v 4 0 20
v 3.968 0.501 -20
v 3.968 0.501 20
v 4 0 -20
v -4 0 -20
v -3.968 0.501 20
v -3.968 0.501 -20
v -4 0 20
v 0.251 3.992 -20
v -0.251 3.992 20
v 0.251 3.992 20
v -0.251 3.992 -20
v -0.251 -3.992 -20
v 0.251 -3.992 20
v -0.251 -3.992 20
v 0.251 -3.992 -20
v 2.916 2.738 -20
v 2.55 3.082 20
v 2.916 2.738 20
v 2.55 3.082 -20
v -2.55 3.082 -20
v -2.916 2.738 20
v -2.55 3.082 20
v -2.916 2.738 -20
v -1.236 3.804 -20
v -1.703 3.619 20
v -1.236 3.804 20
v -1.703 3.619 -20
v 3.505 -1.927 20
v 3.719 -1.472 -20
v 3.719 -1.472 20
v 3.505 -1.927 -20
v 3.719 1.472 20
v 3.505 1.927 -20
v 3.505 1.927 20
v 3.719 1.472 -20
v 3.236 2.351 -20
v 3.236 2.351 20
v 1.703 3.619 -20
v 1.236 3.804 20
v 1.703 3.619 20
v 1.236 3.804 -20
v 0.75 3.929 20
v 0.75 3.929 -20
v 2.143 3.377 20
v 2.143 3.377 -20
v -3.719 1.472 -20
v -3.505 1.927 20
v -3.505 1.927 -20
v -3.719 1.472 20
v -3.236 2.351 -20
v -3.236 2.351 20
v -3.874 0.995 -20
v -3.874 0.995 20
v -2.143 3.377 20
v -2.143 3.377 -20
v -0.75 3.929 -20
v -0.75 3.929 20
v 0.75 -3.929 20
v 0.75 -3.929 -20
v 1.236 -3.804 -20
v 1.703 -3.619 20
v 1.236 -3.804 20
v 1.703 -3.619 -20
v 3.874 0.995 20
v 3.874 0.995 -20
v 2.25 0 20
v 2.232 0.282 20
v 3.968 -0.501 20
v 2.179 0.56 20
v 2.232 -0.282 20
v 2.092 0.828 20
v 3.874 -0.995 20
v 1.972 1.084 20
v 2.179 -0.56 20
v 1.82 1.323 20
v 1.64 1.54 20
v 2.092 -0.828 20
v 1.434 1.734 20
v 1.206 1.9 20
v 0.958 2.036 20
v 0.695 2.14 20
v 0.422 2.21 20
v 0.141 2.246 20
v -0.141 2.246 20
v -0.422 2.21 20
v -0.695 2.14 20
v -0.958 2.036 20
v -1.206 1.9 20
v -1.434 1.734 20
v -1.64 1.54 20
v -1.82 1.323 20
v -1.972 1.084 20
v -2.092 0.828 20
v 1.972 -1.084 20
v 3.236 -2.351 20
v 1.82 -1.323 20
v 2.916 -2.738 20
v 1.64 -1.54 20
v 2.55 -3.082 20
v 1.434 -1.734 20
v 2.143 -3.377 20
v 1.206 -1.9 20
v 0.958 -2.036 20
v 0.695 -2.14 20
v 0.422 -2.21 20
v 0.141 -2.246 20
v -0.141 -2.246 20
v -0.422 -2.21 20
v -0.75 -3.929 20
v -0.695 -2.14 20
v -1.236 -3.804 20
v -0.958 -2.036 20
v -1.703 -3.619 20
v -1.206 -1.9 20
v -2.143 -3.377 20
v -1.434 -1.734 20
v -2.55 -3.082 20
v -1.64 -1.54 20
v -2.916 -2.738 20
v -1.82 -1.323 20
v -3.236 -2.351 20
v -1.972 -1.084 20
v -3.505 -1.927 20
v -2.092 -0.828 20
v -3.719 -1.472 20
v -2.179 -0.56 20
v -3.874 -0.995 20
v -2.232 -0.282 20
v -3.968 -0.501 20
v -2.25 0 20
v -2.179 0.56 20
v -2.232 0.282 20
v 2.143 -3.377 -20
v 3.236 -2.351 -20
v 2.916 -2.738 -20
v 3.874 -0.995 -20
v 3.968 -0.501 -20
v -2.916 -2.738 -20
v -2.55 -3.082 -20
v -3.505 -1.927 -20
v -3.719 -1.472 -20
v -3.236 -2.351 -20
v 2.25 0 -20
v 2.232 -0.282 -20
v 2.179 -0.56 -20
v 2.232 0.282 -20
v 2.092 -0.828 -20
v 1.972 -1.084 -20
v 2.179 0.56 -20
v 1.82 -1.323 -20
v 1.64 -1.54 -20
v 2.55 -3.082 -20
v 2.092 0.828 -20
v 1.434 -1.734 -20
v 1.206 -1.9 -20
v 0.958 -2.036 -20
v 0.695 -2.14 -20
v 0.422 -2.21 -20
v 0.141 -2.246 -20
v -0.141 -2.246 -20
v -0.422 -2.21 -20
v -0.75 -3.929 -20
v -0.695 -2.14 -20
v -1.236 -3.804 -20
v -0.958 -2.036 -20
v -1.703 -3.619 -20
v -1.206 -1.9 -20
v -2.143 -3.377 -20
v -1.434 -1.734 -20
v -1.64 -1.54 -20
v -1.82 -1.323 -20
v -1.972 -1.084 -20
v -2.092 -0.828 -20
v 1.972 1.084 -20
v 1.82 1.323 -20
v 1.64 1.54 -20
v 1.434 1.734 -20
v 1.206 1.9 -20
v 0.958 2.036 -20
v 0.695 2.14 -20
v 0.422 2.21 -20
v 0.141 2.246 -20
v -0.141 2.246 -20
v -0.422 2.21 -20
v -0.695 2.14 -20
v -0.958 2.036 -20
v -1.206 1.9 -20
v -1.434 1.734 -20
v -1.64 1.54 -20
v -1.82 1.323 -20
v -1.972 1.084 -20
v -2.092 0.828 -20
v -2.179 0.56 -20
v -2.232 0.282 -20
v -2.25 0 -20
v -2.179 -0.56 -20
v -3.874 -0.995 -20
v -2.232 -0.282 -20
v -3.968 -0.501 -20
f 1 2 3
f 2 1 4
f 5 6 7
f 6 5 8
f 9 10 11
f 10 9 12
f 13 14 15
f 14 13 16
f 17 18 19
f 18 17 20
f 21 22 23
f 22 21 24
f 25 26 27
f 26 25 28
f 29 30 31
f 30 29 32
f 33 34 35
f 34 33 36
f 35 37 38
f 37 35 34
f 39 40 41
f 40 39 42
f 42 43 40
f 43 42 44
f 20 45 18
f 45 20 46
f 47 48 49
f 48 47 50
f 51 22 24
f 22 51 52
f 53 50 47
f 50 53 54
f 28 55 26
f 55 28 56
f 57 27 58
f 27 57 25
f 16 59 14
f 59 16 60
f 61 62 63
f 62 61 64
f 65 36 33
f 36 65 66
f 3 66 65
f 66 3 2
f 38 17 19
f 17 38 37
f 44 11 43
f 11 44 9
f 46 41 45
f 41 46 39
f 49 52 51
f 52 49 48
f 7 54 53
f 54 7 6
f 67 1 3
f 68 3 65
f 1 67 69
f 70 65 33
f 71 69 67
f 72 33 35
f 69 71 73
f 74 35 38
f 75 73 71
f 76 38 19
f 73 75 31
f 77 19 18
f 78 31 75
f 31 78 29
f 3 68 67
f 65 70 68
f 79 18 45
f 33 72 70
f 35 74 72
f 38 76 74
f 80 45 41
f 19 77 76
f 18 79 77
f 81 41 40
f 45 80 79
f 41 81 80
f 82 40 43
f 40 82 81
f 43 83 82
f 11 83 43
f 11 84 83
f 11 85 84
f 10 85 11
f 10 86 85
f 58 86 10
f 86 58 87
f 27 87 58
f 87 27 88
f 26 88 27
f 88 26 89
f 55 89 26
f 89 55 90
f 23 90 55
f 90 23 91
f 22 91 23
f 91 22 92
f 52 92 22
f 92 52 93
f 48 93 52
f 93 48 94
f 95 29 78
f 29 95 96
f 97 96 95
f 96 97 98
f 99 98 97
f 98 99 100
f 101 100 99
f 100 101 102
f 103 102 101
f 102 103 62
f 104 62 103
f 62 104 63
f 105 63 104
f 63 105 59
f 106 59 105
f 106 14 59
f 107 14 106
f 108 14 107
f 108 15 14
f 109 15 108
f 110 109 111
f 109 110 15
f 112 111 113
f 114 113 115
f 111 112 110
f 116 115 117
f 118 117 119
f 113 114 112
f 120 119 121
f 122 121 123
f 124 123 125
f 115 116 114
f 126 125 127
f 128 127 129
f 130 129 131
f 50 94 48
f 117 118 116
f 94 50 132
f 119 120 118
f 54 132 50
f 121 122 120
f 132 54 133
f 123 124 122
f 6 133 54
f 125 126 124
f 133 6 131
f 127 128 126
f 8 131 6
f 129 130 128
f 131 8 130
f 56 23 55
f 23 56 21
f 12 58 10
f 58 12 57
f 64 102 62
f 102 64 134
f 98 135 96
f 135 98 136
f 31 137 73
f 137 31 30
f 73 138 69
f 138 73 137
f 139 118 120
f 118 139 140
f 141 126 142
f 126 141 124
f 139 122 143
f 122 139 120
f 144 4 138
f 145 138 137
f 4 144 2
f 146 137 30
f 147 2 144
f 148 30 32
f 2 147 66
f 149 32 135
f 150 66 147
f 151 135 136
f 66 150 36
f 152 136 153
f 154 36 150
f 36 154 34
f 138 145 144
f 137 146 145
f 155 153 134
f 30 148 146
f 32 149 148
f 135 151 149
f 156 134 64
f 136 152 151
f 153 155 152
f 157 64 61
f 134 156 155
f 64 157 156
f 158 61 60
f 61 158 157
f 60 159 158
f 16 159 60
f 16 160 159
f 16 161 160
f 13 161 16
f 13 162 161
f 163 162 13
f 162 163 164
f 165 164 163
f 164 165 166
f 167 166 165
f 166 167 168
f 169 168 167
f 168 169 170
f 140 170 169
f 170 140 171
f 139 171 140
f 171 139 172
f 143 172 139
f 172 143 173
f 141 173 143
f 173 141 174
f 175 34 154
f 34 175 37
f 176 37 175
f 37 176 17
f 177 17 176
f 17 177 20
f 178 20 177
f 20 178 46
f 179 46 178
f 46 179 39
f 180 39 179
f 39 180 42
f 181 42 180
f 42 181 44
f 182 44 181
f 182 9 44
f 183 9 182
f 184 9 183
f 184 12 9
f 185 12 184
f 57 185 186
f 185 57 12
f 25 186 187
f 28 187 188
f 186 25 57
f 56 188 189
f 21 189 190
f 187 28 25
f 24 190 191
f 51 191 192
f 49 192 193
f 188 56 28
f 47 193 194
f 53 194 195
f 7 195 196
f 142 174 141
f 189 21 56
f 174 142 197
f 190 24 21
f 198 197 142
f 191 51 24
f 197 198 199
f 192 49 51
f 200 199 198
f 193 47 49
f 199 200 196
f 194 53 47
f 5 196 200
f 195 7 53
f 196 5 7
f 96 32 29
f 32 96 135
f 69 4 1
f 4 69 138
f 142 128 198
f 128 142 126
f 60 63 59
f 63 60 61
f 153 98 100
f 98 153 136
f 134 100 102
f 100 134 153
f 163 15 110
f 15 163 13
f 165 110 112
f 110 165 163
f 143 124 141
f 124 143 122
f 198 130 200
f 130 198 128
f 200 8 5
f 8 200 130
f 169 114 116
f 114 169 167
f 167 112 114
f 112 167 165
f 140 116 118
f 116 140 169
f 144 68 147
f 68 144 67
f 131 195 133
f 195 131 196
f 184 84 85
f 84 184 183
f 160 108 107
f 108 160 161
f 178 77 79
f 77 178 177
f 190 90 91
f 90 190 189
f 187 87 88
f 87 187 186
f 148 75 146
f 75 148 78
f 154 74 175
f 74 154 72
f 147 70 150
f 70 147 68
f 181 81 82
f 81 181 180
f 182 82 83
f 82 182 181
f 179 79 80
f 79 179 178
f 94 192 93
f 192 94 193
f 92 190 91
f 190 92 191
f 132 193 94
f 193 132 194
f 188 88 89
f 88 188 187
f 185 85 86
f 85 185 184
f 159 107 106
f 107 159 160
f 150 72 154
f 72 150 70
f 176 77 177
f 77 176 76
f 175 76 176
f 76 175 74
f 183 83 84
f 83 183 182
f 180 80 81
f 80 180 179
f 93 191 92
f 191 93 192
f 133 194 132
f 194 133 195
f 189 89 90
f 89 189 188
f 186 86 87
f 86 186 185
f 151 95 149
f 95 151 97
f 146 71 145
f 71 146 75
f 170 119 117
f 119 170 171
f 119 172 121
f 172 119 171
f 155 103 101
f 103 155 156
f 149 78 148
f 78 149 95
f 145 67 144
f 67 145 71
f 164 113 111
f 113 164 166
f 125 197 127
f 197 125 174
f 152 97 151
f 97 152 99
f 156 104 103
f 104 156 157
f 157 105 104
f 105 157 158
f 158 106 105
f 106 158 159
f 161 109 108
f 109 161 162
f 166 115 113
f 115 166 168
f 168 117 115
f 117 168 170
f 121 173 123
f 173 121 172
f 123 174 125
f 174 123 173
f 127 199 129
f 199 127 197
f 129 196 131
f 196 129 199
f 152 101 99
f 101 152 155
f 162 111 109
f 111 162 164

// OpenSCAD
$fn = 50;


difference() {
	union() {
		translate(v = [0, 0, -20.0000000000]) {
			cylinder(h = 40, r = 4.0000000000);
		}
	}
	union() {
		translate(v = [0, 0, -100.0000000000]) {
			cylinder(h = 200, r = 2.2500000000);
		}
	}
}
